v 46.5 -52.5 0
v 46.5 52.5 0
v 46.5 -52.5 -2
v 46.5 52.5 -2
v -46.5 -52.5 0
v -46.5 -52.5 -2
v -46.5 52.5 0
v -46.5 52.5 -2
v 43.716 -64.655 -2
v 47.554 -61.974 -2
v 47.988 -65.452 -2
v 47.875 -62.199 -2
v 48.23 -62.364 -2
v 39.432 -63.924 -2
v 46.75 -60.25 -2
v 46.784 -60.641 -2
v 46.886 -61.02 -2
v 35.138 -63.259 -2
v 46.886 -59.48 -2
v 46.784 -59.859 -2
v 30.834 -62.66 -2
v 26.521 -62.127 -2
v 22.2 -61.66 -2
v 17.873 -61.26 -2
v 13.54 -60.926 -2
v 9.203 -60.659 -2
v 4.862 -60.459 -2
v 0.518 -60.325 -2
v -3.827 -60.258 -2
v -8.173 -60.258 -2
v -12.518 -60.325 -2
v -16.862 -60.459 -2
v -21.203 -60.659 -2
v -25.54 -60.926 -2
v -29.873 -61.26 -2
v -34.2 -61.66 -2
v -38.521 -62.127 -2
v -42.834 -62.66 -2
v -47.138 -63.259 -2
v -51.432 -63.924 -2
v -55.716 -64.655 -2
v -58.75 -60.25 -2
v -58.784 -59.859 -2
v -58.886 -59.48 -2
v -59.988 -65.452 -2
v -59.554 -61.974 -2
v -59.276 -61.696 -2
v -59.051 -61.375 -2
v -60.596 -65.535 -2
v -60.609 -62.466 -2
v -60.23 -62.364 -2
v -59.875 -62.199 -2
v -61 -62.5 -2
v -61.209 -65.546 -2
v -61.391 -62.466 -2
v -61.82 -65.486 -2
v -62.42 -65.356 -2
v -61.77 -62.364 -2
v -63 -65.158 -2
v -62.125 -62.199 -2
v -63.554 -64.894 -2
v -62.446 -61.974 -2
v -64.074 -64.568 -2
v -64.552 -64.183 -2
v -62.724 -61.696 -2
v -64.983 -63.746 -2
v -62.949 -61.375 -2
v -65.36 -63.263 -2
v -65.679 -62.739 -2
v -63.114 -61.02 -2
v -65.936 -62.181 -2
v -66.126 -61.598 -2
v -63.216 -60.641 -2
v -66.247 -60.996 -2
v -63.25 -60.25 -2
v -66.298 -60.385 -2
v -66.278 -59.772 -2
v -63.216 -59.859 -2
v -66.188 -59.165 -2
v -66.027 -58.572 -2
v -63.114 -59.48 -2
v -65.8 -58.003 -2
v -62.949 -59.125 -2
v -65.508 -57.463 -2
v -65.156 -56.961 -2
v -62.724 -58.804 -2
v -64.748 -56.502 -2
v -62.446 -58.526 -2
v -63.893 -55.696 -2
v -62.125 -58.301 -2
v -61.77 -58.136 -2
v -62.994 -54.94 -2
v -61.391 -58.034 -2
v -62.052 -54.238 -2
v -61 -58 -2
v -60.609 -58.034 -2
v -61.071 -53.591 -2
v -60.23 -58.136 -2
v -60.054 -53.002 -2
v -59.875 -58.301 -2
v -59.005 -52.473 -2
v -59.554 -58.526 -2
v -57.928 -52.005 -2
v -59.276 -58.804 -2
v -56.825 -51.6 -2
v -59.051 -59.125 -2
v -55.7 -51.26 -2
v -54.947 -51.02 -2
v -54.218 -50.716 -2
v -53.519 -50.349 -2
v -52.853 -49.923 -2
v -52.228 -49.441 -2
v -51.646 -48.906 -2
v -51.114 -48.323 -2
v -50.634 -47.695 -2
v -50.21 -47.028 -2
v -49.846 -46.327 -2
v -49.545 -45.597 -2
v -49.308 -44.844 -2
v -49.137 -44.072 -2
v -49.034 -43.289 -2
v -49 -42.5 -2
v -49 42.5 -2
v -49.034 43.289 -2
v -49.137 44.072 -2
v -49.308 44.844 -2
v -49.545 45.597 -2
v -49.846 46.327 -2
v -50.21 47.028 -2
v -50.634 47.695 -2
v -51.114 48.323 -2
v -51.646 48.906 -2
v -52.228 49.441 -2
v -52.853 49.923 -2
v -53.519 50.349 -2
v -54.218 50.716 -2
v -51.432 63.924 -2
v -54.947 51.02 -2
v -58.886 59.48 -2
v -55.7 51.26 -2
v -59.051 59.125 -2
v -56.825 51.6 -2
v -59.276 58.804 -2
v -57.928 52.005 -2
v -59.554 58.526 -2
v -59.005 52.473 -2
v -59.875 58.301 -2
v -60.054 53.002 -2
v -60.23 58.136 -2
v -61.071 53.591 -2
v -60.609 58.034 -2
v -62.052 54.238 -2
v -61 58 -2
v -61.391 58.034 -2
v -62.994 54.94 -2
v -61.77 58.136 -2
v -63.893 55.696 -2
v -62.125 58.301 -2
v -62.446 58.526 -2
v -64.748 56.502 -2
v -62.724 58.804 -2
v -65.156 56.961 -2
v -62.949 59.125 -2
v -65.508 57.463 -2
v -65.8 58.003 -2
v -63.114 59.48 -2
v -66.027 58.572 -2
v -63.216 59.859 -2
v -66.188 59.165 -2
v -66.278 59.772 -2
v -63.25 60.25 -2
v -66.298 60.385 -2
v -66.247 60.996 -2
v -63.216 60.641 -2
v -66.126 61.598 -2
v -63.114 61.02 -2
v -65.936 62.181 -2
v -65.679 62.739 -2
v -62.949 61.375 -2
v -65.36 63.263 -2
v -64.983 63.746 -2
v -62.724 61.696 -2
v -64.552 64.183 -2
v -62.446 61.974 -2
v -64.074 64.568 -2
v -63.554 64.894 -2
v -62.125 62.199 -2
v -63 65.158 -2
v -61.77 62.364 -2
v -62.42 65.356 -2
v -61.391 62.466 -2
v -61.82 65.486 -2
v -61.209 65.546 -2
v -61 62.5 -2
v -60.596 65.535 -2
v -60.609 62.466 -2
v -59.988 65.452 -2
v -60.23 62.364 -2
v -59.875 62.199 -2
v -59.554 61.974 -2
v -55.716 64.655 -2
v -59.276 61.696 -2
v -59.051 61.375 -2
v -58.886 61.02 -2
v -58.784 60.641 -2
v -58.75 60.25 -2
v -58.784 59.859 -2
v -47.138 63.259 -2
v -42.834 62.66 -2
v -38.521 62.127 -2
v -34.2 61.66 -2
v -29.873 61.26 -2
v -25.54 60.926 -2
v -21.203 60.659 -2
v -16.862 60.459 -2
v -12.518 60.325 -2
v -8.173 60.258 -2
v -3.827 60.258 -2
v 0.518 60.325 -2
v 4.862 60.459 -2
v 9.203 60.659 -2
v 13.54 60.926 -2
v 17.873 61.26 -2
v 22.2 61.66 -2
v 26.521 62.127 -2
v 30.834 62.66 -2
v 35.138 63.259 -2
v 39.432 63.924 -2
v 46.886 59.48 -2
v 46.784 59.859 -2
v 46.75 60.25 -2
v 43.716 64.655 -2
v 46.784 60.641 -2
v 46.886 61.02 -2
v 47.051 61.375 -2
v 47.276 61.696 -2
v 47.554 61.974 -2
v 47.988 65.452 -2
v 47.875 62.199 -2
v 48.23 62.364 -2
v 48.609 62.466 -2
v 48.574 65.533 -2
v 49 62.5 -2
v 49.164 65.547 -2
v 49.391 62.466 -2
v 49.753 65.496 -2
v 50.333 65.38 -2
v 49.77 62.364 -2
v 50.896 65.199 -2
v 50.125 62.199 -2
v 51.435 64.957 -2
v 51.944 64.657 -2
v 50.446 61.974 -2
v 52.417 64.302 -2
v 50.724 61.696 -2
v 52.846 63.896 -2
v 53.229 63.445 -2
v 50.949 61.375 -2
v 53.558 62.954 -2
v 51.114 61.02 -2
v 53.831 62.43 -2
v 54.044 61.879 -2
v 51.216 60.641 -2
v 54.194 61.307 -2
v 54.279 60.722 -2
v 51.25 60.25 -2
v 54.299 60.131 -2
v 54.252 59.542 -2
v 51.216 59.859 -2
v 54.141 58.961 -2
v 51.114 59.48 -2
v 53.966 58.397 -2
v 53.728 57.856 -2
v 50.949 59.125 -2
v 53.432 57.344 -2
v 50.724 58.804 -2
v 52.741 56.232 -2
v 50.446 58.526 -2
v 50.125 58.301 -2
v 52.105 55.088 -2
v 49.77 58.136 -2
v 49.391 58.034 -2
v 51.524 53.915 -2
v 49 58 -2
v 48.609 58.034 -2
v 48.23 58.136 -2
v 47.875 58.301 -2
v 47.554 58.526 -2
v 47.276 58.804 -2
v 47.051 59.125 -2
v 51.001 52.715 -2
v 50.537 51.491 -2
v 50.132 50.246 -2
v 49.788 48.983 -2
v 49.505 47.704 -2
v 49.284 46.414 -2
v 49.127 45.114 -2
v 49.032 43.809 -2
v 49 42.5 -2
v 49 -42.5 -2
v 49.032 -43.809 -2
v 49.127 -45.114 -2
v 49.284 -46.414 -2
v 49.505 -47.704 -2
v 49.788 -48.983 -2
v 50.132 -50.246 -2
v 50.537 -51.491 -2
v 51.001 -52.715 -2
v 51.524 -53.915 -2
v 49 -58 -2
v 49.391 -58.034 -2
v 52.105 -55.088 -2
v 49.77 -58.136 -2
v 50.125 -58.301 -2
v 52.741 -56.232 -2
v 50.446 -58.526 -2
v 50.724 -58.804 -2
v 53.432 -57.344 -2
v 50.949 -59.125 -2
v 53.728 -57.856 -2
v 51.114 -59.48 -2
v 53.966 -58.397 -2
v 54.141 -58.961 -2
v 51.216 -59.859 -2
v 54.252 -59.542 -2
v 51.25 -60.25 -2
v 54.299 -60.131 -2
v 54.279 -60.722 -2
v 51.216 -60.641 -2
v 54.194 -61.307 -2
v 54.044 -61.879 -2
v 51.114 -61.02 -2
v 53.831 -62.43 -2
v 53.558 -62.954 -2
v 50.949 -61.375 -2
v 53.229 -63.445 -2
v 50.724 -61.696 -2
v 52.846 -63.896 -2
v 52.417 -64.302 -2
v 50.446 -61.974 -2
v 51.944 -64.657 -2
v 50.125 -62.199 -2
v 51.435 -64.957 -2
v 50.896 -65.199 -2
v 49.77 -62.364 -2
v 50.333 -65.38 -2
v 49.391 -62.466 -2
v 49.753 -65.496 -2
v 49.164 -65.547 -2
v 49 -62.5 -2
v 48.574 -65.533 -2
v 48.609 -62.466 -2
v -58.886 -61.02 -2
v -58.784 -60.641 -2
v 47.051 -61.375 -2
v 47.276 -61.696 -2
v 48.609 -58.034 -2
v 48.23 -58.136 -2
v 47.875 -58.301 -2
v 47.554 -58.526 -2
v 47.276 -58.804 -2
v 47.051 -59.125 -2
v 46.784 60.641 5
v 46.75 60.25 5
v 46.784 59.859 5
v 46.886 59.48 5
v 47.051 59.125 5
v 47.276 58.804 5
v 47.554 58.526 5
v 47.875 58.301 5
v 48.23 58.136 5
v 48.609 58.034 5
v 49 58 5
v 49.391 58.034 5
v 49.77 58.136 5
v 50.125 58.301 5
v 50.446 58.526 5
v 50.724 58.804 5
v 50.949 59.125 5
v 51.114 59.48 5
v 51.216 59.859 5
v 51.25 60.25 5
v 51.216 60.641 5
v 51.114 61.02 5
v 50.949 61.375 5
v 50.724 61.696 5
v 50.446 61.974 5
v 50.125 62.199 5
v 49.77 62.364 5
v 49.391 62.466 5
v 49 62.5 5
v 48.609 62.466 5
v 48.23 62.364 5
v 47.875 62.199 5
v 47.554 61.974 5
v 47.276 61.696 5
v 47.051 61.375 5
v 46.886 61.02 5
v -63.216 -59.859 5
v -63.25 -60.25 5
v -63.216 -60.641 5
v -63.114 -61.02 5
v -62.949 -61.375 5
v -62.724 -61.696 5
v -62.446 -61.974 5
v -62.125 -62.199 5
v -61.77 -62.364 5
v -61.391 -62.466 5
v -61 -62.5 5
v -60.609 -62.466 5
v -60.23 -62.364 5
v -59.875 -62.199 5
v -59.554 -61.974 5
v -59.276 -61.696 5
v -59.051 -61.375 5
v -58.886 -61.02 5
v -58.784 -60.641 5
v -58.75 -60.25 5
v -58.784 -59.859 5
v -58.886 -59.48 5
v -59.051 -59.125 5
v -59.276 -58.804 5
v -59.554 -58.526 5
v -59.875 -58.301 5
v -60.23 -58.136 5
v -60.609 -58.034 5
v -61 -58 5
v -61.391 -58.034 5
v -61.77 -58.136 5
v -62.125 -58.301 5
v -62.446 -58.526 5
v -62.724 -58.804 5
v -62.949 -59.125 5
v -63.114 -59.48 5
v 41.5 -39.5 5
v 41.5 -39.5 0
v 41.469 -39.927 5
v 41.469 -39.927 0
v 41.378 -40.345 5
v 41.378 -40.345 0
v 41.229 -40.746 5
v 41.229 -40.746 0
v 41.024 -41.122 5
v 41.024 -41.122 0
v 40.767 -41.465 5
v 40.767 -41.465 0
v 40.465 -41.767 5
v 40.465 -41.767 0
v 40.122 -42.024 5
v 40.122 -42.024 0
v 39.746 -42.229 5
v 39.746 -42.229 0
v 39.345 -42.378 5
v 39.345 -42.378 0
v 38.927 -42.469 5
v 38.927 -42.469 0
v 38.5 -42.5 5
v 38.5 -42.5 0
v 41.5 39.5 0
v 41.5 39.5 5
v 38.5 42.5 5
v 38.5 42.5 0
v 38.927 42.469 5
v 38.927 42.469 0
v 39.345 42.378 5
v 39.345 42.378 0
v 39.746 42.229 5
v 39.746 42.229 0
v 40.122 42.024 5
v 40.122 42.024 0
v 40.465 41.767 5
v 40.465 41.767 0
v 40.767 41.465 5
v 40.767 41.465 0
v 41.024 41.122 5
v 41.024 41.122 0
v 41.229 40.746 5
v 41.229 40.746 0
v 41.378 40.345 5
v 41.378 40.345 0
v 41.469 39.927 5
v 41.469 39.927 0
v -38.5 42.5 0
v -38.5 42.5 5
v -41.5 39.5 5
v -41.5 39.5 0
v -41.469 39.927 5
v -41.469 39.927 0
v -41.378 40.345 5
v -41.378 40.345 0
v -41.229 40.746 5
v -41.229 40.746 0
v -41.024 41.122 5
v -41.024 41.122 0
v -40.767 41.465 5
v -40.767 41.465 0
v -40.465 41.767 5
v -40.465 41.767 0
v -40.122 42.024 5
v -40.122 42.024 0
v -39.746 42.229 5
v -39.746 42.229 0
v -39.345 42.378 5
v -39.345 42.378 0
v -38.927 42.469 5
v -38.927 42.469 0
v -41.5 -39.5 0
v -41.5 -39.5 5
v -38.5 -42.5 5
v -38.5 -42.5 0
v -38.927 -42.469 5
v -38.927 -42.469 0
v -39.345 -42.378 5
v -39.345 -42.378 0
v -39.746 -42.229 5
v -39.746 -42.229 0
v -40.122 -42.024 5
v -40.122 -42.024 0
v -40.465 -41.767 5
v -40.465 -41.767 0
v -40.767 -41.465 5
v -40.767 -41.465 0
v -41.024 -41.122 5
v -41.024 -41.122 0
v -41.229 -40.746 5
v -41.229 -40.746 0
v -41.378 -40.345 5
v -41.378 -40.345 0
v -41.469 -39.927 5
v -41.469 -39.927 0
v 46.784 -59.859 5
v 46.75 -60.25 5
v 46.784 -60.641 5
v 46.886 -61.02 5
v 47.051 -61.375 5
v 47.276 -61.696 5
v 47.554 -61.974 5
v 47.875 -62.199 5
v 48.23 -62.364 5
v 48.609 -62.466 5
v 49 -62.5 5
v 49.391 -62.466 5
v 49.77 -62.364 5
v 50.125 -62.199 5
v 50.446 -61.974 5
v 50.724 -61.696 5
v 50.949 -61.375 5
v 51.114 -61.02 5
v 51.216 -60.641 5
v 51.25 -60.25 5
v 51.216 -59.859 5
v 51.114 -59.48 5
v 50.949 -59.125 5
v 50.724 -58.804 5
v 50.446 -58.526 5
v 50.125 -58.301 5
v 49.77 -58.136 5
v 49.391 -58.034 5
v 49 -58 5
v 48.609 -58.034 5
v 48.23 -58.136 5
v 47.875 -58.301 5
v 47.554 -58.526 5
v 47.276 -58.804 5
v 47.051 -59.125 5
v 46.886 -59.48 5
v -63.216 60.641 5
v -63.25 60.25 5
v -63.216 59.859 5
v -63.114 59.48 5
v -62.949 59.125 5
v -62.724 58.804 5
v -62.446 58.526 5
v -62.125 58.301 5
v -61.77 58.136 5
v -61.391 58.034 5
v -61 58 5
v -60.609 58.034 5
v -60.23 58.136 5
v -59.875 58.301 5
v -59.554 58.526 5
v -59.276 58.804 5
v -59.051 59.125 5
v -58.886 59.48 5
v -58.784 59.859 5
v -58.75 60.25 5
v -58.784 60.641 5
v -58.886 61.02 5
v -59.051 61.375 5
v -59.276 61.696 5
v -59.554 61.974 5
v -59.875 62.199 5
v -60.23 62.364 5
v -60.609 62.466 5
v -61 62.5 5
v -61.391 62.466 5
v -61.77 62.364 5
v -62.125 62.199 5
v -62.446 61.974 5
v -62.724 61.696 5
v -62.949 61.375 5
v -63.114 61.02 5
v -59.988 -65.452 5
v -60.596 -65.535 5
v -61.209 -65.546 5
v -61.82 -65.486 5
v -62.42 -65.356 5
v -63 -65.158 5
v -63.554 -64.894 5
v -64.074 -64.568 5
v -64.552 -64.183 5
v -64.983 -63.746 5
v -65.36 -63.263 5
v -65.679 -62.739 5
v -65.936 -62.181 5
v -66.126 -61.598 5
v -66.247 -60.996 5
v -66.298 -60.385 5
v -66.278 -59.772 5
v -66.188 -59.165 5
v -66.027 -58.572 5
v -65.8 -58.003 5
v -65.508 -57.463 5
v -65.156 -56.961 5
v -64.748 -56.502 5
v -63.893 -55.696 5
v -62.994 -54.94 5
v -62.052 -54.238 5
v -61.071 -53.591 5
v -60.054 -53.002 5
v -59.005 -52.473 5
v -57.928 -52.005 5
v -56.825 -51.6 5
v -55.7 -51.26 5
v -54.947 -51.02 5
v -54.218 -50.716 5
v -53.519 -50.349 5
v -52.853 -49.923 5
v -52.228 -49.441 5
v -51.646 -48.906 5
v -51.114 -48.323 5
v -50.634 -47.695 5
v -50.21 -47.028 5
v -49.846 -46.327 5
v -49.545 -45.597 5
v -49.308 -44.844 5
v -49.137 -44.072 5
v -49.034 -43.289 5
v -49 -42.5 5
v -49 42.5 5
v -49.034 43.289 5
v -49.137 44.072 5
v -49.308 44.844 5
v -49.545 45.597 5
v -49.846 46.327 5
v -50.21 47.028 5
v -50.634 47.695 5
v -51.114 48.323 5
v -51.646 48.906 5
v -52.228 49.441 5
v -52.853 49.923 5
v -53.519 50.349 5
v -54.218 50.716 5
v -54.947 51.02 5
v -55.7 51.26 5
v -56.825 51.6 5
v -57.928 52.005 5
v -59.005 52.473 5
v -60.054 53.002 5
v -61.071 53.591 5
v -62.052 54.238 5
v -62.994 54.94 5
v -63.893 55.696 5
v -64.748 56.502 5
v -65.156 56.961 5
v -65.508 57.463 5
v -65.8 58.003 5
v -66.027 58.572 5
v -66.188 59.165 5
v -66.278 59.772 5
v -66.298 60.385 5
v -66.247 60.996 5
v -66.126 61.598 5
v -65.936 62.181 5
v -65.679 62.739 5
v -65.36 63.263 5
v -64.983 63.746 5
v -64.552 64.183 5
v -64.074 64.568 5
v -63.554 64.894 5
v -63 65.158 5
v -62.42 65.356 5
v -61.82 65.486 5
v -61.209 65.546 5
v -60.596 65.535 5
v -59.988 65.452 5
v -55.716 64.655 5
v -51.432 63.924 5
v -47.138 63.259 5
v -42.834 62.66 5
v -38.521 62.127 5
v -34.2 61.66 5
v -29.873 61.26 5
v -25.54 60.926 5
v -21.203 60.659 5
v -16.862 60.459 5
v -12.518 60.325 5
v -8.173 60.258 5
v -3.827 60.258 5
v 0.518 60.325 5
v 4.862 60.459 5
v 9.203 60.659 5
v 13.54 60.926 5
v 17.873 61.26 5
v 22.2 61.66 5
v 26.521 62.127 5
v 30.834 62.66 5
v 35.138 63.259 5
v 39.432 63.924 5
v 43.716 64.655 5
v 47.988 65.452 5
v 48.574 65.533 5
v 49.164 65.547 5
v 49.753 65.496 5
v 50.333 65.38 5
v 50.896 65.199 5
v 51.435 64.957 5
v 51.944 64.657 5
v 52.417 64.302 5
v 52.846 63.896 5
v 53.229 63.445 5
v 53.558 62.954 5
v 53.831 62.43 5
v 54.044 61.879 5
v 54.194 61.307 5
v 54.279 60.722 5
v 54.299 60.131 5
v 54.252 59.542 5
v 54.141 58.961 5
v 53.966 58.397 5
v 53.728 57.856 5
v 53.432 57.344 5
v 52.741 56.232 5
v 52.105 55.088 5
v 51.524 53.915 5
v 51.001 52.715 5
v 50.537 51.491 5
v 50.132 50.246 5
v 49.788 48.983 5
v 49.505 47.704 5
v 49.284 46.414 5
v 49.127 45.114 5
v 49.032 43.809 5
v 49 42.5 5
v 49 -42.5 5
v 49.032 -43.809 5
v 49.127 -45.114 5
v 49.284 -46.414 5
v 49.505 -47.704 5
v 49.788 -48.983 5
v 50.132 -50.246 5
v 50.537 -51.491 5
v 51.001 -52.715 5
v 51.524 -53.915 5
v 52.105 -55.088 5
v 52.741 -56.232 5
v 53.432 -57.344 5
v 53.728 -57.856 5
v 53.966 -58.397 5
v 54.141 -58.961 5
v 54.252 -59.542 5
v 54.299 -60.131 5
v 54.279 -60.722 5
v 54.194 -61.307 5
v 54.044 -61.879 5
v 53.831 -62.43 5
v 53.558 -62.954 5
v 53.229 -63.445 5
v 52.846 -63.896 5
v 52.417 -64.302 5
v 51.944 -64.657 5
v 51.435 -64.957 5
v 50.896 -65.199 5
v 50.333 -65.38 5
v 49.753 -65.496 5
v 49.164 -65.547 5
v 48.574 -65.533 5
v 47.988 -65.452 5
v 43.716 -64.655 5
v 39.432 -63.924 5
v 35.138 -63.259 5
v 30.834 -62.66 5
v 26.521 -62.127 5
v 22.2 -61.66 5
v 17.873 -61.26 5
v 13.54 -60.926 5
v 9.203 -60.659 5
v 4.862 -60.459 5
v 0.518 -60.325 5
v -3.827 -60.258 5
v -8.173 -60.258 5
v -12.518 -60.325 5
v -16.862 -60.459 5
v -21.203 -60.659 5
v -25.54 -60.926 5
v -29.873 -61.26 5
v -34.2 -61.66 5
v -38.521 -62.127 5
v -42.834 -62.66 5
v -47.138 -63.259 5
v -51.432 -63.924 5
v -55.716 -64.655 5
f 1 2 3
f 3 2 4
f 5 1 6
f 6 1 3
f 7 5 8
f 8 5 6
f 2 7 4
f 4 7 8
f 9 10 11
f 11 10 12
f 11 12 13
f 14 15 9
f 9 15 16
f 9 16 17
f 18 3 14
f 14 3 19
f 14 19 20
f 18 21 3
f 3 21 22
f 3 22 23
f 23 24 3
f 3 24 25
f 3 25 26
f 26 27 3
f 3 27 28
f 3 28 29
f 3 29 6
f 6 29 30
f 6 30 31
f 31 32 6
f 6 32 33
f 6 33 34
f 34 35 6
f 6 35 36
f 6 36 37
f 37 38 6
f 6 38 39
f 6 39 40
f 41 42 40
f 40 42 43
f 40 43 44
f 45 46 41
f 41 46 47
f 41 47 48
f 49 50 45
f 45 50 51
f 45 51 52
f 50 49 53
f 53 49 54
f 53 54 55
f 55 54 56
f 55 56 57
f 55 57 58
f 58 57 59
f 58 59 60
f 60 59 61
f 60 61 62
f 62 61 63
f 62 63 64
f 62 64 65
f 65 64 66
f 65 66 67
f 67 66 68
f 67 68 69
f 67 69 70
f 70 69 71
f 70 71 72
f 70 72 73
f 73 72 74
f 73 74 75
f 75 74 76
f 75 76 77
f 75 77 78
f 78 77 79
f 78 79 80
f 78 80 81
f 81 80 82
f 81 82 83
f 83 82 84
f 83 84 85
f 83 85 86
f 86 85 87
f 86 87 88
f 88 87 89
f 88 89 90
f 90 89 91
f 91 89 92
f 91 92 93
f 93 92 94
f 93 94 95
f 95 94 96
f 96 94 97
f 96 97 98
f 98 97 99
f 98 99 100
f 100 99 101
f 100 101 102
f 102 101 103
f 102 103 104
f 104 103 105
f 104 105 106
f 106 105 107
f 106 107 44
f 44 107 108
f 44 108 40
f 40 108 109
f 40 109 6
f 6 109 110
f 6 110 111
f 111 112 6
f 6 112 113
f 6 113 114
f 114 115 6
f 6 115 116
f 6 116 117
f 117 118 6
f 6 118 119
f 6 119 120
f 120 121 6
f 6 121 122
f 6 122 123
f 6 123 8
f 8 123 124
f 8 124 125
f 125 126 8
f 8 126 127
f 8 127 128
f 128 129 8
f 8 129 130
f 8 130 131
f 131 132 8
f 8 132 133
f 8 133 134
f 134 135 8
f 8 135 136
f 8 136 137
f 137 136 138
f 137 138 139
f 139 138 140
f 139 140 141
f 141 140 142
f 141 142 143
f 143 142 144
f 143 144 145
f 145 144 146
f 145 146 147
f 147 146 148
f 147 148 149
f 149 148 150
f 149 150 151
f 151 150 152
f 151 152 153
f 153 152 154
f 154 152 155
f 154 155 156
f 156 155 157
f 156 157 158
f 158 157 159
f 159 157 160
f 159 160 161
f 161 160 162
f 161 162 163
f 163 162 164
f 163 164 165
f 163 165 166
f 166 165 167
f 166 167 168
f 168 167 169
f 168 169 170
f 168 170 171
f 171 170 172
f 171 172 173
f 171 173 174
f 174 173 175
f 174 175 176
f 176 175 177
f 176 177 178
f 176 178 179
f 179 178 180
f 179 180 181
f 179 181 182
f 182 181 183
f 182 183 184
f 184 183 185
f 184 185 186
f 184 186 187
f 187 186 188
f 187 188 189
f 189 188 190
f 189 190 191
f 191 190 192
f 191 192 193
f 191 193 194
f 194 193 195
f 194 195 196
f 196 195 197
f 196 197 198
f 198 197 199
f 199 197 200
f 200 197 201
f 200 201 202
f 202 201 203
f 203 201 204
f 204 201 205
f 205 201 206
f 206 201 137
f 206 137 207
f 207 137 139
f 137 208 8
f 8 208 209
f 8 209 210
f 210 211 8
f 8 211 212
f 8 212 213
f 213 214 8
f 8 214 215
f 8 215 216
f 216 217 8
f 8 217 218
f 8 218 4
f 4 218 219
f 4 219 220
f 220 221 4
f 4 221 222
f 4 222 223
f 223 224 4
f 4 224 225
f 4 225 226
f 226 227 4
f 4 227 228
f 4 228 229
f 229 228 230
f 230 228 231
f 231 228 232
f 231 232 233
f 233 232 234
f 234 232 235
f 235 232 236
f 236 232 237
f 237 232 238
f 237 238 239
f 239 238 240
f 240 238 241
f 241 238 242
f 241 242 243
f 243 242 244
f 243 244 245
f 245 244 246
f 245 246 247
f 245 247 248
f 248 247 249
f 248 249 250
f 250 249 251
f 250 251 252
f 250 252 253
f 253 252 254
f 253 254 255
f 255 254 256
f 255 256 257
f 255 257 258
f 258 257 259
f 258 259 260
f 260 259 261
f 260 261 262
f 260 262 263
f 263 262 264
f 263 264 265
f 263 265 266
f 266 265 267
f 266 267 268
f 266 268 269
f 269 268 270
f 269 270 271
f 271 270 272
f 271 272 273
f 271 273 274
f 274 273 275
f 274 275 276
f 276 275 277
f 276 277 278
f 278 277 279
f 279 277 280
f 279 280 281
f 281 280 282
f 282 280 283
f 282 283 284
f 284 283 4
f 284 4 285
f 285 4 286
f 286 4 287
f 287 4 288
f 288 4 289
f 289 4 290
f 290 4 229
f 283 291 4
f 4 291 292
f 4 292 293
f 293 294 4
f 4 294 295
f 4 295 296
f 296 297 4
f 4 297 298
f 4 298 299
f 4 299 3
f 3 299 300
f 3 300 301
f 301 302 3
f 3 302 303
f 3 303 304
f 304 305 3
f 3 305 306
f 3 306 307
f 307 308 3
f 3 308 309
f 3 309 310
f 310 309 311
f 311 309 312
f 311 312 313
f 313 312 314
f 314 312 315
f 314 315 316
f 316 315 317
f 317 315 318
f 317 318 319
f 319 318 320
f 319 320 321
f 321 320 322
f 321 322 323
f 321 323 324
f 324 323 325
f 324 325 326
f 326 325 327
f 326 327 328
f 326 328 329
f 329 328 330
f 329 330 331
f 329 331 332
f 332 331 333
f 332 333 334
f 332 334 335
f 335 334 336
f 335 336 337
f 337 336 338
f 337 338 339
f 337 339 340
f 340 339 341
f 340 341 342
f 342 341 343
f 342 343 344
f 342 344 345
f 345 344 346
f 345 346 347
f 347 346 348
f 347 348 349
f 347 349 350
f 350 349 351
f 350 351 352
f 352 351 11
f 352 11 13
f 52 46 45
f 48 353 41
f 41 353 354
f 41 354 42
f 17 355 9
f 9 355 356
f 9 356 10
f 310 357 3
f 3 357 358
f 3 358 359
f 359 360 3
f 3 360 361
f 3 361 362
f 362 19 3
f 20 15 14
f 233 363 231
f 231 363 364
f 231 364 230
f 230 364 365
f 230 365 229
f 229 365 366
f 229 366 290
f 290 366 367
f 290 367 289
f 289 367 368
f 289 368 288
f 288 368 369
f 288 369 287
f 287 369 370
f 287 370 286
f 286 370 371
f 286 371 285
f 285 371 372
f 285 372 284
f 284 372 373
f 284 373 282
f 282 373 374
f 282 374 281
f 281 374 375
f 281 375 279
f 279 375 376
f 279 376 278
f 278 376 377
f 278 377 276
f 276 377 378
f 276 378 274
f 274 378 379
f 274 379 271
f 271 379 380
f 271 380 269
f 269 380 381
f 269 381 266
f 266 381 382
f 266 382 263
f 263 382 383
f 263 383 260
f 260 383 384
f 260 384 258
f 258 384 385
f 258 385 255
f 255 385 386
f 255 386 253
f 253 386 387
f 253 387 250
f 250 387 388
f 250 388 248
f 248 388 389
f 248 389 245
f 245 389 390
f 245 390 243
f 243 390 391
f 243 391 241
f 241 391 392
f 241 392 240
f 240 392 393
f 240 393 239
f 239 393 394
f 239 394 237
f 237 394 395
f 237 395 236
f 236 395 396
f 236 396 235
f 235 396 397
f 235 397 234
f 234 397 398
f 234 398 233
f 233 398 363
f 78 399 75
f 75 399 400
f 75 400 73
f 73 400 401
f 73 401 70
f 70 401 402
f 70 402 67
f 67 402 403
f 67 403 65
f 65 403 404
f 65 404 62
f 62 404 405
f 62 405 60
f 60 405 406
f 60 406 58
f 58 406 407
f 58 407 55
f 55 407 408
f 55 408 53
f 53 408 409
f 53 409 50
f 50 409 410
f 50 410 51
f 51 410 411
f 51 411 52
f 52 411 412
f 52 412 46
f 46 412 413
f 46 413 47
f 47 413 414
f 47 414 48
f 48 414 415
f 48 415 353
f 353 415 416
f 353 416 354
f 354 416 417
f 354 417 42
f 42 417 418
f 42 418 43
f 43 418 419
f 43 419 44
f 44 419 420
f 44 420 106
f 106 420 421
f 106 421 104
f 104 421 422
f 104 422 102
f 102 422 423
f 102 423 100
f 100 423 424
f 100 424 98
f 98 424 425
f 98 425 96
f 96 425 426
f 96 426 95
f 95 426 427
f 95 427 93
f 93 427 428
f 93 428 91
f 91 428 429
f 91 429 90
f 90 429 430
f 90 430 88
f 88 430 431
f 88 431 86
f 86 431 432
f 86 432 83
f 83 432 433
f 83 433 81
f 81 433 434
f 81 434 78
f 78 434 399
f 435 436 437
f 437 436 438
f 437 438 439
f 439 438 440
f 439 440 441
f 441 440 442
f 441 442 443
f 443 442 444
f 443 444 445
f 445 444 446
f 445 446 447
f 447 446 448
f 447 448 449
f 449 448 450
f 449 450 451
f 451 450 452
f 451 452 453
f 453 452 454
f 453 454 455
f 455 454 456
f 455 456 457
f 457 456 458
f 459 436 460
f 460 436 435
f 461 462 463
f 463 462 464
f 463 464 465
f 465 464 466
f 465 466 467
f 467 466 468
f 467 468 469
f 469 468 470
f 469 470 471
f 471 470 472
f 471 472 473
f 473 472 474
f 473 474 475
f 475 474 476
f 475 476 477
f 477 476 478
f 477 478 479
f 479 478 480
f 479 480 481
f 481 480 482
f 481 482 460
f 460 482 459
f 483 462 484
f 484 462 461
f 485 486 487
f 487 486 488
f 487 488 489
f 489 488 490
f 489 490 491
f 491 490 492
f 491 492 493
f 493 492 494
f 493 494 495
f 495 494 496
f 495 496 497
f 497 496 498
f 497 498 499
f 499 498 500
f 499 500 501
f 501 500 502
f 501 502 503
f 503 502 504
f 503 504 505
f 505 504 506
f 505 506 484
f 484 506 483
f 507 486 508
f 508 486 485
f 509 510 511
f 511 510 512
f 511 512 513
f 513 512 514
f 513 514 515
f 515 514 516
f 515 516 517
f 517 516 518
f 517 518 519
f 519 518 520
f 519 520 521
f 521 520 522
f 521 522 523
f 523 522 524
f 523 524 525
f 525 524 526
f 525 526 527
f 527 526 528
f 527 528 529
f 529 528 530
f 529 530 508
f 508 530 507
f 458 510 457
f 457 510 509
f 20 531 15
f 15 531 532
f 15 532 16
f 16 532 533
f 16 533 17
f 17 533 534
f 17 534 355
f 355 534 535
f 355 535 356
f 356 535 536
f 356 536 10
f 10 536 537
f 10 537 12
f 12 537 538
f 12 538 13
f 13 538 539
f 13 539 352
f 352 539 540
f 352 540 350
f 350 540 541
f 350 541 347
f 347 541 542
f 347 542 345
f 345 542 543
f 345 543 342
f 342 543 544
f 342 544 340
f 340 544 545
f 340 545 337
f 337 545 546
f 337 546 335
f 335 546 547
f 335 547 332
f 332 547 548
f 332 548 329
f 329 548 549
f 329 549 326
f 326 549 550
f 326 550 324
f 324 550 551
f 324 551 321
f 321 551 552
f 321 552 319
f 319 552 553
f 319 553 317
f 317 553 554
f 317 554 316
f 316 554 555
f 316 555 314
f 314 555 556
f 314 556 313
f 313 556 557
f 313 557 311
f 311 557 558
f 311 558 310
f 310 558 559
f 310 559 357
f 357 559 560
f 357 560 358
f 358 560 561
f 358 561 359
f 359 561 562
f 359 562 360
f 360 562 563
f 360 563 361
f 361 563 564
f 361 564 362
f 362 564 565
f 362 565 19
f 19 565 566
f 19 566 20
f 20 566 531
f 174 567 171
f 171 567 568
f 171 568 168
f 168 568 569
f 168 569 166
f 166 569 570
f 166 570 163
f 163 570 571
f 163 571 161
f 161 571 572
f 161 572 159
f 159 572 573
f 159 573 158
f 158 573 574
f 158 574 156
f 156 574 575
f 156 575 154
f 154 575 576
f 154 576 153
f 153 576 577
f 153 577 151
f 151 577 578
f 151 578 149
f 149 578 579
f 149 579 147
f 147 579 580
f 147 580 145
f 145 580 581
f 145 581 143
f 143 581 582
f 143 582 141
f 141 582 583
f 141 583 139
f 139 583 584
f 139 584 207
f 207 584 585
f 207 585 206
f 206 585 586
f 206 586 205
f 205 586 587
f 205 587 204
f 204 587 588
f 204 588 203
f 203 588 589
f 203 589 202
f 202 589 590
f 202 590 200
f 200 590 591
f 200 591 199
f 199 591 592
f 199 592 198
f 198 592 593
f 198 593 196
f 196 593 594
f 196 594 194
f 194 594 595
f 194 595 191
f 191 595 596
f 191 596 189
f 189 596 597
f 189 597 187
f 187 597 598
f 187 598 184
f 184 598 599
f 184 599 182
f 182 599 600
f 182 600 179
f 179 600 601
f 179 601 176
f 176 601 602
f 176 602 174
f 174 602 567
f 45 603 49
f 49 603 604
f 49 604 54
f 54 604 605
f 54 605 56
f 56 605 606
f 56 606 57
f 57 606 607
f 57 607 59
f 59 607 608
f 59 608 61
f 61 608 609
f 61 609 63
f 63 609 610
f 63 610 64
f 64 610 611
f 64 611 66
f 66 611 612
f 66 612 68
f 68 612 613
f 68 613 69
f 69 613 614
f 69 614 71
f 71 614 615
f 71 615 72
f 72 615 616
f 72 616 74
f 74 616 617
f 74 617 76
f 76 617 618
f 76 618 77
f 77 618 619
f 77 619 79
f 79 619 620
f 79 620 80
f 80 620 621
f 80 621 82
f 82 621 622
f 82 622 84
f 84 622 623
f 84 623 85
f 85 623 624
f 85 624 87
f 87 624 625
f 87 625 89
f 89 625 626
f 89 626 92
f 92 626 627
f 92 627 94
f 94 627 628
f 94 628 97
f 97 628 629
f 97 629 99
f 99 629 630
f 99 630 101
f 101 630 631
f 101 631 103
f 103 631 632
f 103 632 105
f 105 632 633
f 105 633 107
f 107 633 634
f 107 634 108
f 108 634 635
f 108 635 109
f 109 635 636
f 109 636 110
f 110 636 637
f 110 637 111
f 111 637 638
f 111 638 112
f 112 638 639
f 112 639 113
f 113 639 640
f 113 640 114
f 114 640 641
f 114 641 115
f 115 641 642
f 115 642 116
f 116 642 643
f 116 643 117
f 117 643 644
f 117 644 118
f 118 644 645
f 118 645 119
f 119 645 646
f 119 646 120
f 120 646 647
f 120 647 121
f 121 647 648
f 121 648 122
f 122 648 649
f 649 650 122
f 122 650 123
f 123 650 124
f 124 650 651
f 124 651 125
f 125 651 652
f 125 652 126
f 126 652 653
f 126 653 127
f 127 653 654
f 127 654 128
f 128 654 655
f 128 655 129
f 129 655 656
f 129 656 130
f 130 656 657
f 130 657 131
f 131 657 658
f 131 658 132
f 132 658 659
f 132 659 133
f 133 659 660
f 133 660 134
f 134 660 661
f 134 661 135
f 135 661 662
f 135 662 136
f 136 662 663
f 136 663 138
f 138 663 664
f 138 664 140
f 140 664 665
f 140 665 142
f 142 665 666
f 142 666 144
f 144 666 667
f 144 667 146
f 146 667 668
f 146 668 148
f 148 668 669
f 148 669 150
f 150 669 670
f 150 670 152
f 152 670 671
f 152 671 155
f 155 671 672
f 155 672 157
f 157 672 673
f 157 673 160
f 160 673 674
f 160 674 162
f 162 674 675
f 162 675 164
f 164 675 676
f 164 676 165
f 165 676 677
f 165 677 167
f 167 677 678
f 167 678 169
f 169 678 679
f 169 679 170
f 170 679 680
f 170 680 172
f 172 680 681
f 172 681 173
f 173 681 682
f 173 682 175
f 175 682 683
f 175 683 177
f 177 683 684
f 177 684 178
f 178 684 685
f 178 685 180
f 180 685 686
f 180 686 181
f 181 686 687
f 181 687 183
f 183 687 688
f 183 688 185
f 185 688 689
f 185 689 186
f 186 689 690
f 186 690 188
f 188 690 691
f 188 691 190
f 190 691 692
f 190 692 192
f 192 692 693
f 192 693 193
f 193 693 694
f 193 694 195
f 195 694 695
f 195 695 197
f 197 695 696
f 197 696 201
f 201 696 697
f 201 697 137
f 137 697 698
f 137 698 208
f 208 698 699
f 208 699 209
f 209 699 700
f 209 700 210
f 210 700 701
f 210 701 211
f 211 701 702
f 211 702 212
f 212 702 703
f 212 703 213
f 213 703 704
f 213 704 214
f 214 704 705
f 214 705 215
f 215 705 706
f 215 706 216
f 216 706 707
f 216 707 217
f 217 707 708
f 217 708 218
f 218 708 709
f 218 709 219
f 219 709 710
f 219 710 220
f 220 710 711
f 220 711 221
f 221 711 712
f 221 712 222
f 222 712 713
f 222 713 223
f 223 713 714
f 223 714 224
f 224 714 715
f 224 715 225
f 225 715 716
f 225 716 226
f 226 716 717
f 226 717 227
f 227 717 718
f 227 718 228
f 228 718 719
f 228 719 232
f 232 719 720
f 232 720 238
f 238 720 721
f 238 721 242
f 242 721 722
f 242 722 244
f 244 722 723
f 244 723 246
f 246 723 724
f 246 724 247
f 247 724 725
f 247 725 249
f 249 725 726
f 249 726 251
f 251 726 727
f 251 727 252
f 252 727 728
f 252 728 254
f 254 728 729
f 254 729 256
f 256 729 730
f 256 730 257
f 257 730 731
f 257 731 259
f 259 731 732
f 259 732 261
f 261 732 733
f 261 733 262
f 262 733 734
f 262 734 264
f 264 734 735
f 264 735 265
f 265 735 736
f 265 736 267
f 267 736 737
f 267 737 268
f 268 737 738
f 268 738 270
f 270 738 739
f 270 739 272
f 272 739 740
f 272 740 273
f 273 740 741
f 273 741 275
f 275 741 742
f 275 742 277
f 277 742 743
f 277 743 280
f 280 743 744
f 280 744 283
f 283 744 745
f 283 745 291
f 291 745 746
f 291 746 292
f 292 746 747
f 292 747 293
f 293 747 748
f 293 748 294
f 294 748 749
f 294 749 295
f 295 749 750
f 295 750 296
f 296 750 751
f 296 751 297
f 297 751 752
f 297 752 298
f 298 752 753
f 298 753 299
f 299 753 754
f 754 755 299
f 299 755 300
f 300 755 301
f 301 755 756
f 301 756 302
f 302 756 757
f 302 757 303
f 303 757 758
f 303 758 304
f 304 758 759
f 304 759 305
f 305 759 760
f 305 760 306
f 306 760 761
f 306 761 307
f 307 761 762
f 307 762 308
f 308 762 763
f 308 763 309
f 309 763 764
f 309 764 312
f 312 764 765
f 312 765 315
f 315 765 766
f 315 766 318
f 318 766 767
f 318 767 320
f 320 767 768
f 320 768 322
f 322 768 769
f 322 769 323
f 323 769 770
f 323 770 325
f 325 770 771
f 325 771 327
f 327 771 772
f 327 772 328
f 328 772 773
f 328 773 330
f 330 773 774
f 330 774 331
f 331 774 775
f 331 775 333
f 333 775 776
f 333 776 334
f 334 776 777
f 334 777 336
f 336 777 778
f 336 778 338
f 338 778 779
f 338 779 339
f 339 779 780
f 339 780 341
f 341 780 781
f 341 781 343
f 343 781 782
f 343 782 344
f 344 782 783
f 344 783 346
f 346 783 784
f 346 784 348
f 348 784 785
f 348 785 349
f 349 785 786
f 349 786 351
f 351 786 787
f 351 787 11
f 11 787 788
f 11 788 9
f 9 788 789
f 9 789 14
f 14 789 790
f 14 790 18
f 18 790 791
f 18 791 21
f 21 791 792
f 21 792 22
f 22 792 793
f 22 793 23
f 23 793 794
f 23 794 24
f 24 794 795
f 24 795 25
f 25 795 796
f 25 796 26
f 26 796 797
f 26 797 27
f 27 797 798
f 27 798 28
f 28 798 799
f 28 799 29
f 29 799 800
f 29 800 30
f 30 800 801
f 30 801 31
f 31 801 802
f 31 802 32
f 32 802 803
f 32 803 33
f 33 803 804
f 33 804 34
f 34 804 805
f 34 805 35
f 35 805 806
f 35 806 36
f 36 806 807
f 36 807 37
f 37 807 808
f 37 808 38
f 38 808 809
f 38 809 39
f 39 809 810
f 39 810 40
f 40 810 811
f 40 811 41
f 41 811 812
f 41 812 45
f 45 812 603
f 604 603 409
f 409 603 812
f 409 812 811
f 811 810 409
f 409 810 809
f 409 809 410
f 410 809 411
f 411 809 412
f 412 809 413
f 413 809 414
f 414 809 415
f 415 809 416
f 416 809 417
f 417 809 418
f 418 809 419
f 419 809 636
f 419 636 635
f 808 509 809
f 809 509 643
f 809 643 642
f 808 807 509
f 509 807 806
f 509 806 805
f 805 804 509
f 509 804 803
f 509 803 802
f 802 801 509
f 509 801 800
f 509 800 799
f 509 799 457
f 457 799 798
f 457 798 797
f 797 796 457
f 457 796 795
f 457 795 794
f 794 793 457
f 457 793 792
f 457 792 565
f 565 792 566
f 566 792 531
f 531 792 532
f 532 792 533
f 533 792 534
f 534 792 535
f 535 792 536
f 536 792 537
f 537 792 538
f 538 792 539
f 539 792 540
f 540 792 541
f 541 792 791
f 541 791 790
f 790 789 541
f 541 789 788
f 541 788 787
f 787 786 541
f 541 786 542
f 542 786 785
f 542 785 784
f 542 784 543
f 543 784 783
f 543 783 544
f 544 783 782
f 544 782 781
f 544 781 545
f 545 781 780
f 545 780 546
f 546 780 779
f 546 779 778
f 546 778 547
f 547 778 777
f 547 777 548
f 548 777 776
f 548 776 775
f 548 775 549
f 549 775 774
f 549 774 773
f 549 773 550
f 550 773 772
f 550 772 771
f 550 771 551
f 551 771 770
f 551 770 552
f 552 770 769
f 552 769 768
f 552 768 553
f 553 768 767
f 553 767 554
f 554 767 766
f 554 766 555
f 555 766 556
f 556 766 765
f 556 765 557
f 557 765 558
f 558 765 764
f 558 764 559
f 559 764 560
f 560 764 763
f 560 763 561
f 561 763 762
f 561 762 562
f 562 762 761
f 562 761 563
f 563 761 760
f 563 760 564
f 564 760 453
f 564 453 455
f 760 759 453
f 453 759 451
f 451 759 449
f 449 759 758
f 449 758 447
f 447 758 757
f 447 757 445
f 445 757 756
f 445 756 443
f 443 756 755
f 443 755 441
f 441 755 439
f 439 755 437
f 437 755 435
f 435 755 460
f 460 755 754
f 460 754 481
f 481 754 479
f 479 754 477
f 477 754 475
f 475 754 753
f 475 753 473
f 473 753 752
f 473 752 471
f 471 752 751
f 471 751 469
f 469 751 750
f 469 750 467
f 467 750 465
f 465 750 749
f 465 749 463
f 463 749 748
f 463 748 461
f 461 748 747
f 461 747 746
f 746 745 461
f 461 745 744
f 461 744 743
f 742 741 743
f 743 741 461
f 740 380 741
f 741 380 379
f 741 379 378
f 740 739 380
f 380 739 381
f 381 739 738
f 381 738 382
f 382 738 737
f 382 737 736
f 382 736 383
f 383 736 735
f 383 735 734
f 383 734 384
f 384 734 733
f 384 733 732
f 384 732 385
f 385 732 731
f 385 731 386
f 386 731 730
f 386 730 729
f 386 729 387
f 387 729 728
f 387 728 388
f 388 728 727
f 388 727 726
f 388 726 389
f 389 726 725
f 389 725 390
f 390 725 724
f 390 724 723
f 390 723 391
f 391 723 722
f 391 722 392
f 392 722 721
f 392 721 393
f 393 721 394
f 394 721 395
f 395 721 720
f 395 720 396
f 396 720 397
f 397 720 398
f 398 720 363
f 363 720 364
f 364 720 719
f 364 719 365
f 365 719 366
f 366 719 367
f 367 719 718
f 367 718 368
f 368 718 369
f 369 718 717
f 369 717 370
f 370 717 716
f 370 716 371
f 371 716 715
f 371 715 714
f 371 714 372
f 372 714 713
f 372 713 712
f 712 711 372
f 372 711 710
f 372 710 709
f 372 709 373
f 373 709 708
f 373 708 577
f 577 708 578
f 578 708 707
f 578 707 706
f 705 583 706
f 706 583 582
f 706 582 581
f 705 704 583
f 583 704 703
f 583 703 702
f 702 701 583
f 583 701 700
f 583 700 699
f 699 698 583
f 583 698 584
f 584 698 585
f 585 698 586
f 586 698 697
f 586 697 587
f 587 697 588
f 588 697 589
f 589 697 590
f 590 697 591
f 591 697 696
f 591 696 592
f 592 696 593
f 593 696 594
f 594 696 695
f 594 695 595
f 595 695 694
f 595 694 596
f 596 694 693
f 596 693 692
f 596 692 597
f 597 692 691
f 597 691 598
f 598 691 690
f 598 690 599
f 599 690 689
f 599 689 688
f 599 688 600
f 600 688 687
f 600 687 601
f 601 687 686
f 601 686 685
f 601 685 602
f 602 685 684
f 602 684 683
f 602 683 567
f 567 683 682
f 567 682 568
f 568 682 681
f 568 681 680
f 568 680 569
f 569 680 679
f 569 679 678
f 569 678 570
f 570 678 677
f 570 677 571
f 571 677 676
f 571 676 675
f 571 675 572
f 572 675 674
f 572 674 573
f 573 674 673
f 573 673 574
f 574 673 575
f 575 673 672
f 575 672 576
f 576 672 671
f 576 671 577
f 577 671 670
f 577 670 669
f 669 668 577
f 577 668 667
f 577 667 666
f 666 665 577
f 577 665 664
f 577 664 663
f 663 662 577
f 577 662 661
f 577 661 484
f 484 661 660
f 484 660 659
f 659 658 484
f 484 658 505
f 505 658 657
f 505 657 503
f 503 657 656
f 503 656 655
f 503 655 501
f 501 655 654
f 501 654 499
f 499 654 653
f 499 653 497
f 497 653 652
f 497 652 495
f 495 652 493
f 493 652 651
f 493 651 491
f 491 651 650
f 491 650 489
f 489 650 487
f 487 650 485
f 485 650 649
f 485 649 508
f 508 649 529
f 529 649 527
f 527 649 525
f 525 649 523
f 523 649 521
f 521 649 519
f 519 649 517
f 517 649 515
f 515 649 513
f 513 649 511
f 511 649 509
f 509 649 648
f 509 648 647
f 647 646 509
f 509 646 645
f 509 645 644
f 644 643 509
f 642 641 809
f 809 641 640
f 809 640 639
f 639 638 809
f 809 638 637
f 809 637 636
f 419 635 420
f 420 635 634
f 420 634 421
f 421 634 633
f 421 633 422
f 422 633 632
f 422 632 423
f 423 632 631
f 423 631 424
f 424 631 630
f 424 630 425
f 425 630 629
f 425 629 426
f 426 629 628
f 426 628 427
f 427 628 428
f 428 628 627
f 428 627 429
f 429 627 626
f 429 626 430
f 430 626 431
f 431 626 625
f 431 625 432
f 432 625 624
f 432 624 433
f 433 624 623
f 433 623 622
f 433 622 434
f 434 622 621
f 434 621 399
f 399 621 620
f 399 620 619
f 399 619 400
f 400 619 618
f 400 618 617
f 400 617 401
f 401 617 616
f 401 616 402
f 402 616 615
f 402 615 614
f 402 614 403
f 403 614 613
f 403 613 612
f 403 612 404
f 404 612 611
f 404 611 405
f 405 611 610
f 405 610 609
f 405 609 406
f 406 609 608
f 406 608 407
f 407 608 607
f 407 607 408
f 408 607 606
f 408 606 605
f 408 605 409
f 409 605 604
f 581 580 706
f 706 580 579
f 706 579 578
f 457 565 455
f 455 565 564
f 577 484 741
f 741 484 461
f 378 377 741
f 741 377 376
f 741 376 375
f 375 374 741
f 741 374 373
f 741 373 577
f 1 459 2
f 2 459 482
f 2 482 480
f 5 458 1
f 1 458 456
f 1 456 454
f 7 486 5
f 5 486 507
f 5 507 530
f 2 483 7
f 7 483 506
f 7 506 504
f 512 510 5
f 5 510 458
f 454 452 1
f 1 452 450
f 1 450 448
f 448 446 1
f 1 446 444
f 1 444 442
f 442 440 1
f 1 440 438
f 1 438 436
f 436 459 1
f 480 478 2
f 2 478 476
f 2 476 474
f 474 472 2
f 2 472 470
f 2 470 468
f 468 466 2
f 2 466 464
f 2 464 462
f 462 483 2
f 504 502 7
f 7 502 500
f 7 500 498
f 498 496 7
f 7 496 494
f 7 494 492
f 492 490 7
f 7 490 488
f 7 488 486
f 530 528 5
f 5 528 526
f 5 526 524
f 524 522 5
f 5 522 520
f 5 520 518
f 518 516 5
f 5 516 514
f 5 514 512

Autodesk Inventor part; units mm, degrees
ref_plane "YZ Plane" through (0, 0, 0) normal (1, 0, 0) x (0, 1, 0)
ref_plane "XZ Plane" through (0, 0, 0) normal (0, 1, 0) x (-1, 0, 0)
ref_plane "XY Plane" through (0, 0, 0) normal (0, 0, 1) x (1, 0, 0)
sketch "Skizze1" plane through (0, 0, 0) normal (0, 0, 1) x (1, 0, 0)
  line L0 (46.5, 52.5) -> (-46.5, 52.5) projected
  line L1 (-46.5, 52.5) -> (-46.5, -52.5) projected
  line L2 (-46.5, -52.5) -> (46.5, -52.5) projected
  line L3 (46.5, -52.5) -> (46.5, 52.5) projected
  circle A0 centre (49, -60.25) radius 5.3 projected
  circle A1 centre (49, -60.25) radius 2 projected
  circle A2 centre (49, 60.25) radius 5.3 projected
  circle A3 centre (49, 60.25) radius 2 projected
  circle A4 centre (-61, 60.25) radius 5.3 projected
  circle A5 centre (-61, 60.25) radius 2 projected
  circle A6 centre (-61, -60.25) radius 5.3 projected
  circle A7 centre (-61, -60.25) radius 2 projected
  line L4 (49, 60.25) -> (-61, 60.25) construction
  line L5 (49, -60.25) -> (-61, -60.25) construction
  arc A8 (-59.9879, 65.4525) -> (47.9879, 65.4525) centre (-6, 342.9774) ccw
  arc A9 (47.9879, -65.4525) -> (-59.9879, -65.4525) centre (-6, -342.9774) ccw
  line L6 (-41.5, 39.5) -> (-41.5, -39.5)
  line L7 (41.5, -39.5) -> (41.5, 39.5)
  line L8 (38.5, 42.5) -> (-38.5, 42.5)
  line L9 (38.5, -42.5) -> (-38.5, -42.5)
  arc A10 (41.5, 39.5) -> (38.5, 42.5) centre (38.5, 39.5) ccw
  arc A11 (38.5, -42.5) -> (41.5, -39.5) centre (38.5, -39.5) ccw
  arc A12 (-41.5, -39.5) -> (-38.5, -42.5) centre (-38.5, -39.5) ccw
  arc A13 (-38.5, 42.5) -> (-41.5, 39.5) centre (-38.5, 39.5) ccw
  line L10 (-49, 42.5) -> (-49, -42.5)
  line L11 (49, 42.5) -> (49, -42.5)
  arc A14 (-64.7477, 56.5023) -> (-55.7, 51.2598) centre (-50.3799, 70.8701) ccw
  arc A15 (-49, 42.5) -> (-55.7, 51.2598) centre (-58.0765, 42.5) ccw
  arc A16 (-59.9879, 65.4525) -> (-64.7477, 56.5023) centre (-61, 60.25) ccw
  arc A17 (-55.7, -51.2598) -> (-64.7477, -56.5023) centre (-50.3799, -70.8701) ccw
  arc A18 (-55.7, -51.2598) -> (-49, -42.5) centre (-58.0765, -42.5) ccw
  arc A19 (-64.7477, -56.5023) -> (-59.9879, -65.4525) centre (-61, -60.25) ccw
  arc A20 (53.4323, 57.344) -> (49, 42.5) centre (76.0729, 42.5) ccw
  arc A21 (49, -42.5) -> (53.4323, -57.344) centre (76.0729, -42.5) ccw
  arc A22 (53.4323, 57.344) -> (47.9879, 65.4525) centre (49, 60.25) ccw
  arc A23 (47.9879, -65.4525) -> (53.4323, -57.344) centre (49, -60.25) ccw
  circle A24 centre (49, -60.25) radius 2.25
  circle A25 centre (-61, -60.25) radius 2.25
  circle A26 centre (-61, 60.25) radius 2.25
  circle A27 centre (49, 60.25) radius 2.25
  point P0 (-6, 60.25)
  point P1 (-6, -60.25)
  point P2 (-55.7, 60.25)
  dimension "d34" = 5
  dimension "d35" = 5
  dimension "d36" = 10
  dimension "d37" = 10
  dimension "d38" = 3
  dimension "d39" = 2.5
  dimension "d40" = 2.5
  dimension "d41" = 45
  dimension "d42" = 45
  dimension "d43" = 0.25
  dimension "d44" = 0.25
  dimension "d45" = 0.25
  dimension "d46" = 0.25
extrude "Extrusion1" add sketch "Skizze1" along normal blind 5 contours L3 L2 L1 L0 | A0 | A0 A9 A6 A17 A18 L10 A15 A14 A4 A8 A2 A20 L11 A21 | A6 | A2 | A4
sketch "Skizze2" plane through (0, 0, 0) normal (0, 0, -1) x (-1, 0, 0)
  arc A0 (59.9879, -65.4525) -> (64.7477, -56.5023) centre (61, -60.25) ccw projected
  arc A1 (64.7477, 56.5023) -> (59.9879, 65.4525) centre (61, 60.25) ccw projected
  line L0 (-46.5, 52.5) -> (46.5, 52.5) projected
  line L1 (46.5, 52.5) -> (46.5, -52.5) projected
  line L2 (46.5, -52.5) -> (-46.5, -52.5) projected
  line L3 (-46.5, -52.5) -> (-46.5, 52.5) projected
  line L4 (47, 53) -> (-47, 53)
  line L5 (-47, 53) -> (-47, -53)
  line L6 (-47, -53) -> (47, -53)
  line L7 (47, -53) -> (47, 53)
  arc A2 (-47.9879, 65.4525) -> (-53.4323, 57.344) centre (-49, 60.25) ccw projected
  arc A3 (-47.9879, 65.4525) -> (59.9879, 65.4525) centre (6, 342.9774) ccw projected
  arc A4 (-49, 42.5) -> (-53.4323, 57.344) centre (-76.0729, 42.5) ccw projected
  line L8 (-49, -42.5) -> (-49, 42.5) projected
  arc A5 (-53.4323, -57.344) -> (-49, -42.5) centre (-76.0729, -42.5) ccw projected
  arc A6 (-53.4323, -57.344) -> (-47.9879, -65.4525) centre (-49, -60.25) ccw projected
  arc A7 (59.9879, -65.4525) -> (-47.9879, -65.4525) centre (6, -342.9774) ccw projected
  arc A8 (64.7477, -56.5023) -> (55.7, -51.2598) centre (50.3799, -70.8701) ccw projected
  arc A9 (49, -42.5) -> (55.7, -51.2598) centre (58.0765, -42.5) ccw projected
  line L9 (49, 42.5) -> (49, -42.5) projected
  arc A10 (55.7, 51.2598) -> (49, 42.5) centre (58.0765, 42.5) ccw projected
  arc A11 (55.7, 51.2598) -> (64.7477, 56.5023) centre (50.3799, 70.8701) ccw projected
  circle A12 centre (61, 60.25) radius 2.25 projected
  circle A13 centre (61, -60.25) radius 2.25 projected
  circle A14 centre (-49, -60.25) radius 2.25 projected
  circle A15 centre (-49, 60.25) radius 2.25 projected
  point P0 (0, 0)
  dimension "d30" = 0.5
extrude "Extrusion2" add sketch "Skizze2" along normal blind 2 contours A7 A6 A5 L8 A4 A2 A3 A1 A11 A10 L9 A9 A8 A0 | L7 L6 L5 L4
equation "\"d35\" = d34"
equation "\"d37\" = d36"
equation "\"d40\" = d39"
equation "\"d44\" = d43"
equation "\"d45\" = d43"
equation "\"d46\" = d43"
properties part number "jetson_deckel"
